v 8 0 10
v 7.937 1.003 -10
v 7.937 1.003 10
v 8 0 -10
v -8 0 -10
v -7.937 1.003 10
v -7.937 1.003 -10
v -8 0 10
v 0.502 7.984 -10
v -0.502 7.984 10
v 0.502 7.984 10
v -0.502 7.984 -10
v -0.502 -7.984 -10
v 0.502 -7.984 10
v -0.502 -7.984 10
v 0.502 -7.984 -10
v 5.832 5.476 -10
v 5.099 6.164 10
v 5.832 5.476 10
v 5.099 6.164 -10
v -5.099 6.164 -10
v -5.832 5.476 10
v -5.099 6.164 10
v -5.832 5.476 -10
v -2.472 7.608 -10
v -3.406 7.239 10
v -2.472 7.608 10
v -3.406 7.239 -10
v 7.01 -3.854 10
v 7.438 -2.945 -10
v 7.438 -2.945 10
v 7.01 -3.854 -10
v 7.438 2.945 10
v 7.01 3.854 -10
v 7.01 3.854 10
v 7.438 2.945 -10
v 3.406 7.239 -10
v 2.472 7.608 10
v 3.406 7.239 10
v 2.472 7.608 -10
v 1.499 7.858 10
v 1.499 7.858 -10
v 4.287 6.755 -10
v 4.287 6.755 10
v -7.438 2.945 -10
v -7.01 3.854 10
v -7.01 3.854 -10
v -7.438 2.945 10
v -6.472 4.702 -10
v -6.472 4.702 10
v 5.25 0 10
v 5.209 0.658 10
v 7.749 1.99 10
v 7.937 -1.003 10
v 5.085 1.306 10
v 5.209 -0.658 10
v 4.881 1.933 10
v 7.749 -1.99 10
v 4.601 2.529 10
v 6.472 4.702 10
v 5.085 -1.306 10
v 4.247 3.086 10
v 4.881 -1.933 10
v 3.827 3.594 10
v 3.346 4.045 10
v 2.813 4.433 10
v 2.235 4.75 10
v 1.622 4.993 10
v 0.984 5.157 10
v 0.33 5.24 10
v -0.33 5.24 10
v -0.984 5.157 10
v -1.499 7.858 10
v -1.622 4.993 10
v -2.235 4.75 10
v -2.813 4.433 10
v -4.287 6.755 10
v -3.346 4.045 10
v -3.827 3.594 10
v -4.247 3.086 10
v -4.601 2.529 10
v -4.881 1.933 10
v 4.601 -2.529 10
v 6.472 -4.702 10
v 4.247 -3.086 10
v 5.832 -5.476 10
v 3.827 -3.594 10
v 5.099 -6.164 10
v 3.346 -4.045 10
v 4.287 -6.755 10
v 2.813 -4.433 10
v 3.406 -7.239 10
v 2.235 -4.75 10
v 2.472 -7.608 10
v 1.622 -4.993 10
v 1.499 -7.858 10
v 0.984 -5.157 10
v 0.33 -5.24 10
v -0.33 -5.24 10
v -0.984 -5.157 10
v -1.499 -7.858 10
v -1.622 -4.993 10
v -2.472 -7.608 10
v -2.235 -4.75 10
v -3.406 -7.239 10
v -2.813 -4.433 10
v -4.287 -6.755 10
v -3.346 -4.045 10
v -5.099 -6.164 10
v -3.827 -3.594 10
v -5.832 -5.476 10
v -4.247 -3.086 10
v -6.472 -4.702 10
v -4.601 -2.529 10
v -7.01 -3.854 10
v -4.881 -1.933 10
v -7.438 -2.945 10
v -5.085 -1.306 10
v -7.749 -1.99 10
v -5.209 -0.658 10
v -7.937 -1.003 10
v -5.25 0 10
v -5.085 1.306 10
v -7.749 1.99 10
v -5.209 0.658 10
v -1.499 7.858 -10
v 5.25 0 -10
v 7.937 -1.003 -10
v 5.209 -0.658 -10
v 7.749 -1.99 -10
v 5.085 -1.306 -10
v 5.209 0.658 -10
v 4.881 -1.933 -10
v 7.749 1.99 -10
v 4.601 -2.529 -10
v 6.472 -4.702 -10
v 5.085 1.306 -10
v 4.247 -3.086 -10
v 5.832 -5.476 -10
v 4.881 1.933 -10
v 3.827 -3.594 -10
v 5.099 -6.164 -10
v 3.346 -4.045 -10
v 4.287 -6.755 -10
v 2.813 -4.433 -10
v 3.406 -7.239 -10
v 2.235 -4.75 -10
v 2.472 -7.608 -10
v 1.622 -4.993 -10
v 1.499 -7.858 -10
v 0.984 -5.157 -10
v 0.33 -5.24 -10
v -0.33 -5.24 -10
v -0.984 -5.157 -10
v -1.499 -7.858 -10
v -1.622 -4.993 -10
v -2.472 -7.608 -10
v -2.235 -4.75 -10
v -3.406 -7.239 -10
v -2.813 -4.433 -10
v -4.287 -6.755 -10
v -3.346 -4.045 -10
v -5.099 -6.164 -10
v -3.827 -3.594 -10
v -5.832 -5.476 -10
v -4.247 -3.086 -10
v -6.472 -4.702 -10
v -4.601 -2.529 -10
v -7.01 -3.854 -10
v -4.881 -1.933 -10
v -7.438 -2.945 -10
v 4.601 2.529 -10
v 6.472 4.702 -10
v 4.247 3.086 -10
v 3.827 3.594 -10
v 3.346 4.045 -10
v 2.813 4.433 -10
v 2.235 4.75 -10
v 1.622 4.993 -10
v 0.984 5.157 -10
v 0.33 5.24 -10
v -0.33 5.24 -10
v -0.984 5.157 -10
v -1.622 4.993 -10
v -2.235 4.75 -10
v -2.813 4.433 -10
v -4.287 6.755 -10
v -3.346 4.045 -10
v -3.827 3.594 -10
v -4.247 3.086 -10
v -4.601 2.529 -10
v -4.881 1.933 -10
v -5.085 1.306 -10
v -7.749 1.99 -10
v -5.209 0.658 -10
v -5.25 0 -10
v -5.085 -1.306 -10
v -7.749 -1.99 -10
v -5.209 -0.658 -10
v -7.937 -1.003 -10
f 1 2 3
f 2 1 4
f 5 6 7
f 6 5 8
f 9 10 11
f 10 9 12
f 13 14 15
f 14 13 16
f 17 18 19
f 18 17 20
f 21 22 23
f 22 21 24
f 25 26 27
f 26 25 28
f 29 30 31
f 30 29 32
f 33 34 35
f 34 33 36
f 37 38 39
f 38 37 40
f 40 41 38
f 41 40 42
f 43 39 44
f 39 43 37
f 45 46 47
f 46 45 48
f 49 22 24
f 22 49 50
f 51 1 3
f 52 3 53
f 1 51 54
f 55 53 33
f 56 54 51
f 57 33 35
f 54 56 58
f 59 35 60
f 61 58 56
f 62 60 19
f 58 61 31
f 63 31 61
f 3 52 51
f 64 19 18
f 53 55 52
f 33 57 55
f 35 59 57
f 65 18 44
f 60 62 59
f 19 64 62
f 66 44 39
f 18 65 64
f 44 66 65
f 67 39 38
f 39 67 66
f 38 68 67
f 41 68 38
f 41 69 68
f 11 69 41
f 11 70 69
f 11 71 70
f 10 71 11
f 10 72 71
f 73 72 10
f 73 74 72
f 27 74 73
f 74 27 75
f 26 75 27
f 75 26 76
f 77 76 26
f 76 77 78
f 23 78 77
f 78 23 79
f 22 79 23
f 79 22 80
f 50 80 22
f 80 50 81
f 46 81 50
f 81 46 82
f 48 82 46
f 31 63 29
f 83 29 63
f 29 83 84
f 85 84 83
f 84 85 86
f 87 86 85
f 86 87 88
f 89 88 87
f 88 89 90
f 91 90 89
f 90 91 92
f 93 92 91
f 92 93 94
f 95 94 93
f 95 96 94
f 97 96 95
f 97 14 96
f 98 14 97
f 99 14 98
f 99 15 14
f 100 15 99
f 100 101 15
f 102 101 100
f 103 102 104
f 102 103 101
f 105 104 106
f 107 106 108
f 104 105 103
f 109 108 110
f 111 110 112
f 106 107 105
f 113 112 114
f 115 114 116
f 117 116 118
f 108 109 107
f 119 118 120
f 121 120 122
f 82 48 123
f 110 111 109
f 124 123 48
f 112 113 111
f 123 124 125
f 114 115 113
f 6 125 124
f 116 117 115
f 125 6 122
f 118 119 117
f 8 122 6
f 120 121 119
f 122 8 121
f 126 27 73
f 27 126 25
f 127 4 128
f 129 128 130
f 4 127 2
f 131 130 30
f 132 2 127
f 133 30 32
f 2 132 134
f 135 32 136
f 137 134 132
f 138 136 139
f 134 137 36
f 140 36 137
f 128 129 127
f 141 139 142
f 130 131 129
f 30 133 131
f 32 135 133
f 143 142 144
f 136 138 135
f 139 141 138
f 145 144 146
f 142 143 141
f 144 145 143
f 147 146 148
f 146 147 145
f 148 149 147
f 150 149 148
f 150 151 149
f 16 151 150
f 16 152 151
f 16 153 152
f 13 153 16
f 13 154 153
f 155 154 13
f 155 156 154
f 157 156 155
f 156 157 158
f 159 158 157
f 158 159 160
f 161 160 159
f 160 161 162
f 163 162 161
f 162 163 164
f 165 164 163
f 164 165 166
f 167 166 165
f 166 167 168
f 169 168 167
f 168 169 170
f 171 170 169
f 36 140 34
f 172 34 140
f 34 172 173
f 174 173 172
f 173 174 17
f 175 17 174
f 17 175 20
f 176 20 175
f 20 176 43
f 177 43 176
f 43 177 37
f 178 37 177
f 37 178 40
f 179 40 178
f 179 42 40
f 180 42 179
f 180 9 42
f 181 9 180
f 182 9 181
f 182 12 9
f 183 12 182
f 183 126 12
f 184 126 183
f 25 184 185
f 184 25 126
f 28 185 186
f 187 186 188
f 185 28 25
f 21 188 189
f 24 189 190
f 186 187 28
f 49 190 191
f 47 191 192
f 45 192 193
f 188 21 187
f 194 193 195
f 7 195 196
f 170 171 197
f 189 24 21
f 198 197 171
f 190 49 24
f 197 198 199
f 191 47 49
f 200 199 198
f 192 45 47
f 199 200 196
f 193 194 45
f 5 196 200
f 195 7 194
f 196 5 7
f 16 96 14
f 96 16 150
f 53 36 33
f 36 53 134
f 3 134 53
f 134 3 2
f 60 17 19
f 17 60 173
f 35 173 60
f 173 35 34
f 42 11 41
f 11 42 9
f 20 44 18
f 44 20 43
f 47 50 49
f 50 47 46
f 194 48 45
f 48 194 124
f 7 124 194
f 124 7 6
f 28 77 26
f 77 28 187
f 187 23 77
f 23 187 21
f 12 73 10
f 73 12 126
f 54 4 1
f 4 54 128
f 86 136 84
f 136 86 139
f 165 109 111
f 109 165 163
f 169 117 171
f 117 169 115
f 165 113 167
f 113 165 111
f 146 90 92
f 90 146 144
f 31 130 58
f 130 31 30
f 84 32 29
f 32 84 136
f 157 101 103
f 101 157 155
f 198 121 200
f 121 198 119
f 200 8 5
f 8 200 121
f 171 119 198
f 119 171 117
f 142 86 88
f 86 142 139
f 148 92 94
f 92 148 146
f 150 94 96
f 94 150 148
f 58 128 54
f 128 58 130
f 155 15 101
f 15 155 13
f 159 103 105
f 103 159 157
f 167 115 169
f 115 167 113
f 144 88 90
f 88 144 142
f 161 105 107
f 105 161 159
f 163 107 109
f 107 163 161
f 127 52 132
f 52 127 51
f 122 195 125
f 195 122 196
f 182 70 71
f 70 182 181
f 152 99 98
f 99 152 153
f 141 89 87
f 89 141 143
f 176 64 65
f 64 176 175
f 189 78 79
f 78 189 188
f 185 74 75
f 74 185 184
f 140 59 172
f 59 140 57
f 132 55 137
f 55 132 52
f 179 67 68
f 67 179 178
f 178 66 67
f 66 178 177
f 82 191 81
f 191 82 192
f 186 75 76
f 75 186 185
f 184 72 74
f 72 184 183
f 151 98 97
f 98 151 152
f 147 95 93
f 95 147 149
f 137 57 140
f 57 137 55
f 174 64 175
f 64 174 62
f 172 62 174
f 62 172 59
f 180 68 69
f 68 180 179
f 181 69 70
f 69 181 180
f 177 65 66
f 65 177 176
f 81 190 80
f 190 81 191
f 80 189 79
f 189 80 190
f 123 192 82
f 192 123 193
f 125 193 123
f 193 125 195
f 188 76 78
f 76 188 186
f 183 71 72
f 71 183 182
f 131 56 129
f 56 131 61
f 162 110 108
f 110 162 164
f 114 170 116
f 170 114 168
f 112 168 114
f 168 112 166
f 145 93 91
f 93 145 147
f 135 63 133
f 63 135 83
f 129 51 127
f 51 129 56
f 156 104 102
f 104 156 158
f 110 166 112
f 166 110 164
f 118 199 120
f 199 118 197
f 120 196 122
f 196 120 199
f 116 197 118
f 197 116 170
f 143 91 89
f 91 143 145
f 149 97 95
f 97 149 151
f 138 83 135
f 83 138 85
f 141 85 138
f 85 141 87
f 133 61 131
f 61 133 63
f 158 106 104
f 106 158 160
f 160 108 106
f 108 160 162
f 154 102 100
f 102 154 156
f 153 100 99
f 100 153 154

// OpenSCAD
$fn = 50;


difference() {
	union() {
		translate(v = [0, 0, -10.0000000000]) {
			cylinder(h = 20, r = 8.0000000000);
		}
	}
	union() {
		translate(v = [0, 0, -100.0000000000]) {
			cylinder(h = 200, r = 5.2500000000);
		}
	}
}
